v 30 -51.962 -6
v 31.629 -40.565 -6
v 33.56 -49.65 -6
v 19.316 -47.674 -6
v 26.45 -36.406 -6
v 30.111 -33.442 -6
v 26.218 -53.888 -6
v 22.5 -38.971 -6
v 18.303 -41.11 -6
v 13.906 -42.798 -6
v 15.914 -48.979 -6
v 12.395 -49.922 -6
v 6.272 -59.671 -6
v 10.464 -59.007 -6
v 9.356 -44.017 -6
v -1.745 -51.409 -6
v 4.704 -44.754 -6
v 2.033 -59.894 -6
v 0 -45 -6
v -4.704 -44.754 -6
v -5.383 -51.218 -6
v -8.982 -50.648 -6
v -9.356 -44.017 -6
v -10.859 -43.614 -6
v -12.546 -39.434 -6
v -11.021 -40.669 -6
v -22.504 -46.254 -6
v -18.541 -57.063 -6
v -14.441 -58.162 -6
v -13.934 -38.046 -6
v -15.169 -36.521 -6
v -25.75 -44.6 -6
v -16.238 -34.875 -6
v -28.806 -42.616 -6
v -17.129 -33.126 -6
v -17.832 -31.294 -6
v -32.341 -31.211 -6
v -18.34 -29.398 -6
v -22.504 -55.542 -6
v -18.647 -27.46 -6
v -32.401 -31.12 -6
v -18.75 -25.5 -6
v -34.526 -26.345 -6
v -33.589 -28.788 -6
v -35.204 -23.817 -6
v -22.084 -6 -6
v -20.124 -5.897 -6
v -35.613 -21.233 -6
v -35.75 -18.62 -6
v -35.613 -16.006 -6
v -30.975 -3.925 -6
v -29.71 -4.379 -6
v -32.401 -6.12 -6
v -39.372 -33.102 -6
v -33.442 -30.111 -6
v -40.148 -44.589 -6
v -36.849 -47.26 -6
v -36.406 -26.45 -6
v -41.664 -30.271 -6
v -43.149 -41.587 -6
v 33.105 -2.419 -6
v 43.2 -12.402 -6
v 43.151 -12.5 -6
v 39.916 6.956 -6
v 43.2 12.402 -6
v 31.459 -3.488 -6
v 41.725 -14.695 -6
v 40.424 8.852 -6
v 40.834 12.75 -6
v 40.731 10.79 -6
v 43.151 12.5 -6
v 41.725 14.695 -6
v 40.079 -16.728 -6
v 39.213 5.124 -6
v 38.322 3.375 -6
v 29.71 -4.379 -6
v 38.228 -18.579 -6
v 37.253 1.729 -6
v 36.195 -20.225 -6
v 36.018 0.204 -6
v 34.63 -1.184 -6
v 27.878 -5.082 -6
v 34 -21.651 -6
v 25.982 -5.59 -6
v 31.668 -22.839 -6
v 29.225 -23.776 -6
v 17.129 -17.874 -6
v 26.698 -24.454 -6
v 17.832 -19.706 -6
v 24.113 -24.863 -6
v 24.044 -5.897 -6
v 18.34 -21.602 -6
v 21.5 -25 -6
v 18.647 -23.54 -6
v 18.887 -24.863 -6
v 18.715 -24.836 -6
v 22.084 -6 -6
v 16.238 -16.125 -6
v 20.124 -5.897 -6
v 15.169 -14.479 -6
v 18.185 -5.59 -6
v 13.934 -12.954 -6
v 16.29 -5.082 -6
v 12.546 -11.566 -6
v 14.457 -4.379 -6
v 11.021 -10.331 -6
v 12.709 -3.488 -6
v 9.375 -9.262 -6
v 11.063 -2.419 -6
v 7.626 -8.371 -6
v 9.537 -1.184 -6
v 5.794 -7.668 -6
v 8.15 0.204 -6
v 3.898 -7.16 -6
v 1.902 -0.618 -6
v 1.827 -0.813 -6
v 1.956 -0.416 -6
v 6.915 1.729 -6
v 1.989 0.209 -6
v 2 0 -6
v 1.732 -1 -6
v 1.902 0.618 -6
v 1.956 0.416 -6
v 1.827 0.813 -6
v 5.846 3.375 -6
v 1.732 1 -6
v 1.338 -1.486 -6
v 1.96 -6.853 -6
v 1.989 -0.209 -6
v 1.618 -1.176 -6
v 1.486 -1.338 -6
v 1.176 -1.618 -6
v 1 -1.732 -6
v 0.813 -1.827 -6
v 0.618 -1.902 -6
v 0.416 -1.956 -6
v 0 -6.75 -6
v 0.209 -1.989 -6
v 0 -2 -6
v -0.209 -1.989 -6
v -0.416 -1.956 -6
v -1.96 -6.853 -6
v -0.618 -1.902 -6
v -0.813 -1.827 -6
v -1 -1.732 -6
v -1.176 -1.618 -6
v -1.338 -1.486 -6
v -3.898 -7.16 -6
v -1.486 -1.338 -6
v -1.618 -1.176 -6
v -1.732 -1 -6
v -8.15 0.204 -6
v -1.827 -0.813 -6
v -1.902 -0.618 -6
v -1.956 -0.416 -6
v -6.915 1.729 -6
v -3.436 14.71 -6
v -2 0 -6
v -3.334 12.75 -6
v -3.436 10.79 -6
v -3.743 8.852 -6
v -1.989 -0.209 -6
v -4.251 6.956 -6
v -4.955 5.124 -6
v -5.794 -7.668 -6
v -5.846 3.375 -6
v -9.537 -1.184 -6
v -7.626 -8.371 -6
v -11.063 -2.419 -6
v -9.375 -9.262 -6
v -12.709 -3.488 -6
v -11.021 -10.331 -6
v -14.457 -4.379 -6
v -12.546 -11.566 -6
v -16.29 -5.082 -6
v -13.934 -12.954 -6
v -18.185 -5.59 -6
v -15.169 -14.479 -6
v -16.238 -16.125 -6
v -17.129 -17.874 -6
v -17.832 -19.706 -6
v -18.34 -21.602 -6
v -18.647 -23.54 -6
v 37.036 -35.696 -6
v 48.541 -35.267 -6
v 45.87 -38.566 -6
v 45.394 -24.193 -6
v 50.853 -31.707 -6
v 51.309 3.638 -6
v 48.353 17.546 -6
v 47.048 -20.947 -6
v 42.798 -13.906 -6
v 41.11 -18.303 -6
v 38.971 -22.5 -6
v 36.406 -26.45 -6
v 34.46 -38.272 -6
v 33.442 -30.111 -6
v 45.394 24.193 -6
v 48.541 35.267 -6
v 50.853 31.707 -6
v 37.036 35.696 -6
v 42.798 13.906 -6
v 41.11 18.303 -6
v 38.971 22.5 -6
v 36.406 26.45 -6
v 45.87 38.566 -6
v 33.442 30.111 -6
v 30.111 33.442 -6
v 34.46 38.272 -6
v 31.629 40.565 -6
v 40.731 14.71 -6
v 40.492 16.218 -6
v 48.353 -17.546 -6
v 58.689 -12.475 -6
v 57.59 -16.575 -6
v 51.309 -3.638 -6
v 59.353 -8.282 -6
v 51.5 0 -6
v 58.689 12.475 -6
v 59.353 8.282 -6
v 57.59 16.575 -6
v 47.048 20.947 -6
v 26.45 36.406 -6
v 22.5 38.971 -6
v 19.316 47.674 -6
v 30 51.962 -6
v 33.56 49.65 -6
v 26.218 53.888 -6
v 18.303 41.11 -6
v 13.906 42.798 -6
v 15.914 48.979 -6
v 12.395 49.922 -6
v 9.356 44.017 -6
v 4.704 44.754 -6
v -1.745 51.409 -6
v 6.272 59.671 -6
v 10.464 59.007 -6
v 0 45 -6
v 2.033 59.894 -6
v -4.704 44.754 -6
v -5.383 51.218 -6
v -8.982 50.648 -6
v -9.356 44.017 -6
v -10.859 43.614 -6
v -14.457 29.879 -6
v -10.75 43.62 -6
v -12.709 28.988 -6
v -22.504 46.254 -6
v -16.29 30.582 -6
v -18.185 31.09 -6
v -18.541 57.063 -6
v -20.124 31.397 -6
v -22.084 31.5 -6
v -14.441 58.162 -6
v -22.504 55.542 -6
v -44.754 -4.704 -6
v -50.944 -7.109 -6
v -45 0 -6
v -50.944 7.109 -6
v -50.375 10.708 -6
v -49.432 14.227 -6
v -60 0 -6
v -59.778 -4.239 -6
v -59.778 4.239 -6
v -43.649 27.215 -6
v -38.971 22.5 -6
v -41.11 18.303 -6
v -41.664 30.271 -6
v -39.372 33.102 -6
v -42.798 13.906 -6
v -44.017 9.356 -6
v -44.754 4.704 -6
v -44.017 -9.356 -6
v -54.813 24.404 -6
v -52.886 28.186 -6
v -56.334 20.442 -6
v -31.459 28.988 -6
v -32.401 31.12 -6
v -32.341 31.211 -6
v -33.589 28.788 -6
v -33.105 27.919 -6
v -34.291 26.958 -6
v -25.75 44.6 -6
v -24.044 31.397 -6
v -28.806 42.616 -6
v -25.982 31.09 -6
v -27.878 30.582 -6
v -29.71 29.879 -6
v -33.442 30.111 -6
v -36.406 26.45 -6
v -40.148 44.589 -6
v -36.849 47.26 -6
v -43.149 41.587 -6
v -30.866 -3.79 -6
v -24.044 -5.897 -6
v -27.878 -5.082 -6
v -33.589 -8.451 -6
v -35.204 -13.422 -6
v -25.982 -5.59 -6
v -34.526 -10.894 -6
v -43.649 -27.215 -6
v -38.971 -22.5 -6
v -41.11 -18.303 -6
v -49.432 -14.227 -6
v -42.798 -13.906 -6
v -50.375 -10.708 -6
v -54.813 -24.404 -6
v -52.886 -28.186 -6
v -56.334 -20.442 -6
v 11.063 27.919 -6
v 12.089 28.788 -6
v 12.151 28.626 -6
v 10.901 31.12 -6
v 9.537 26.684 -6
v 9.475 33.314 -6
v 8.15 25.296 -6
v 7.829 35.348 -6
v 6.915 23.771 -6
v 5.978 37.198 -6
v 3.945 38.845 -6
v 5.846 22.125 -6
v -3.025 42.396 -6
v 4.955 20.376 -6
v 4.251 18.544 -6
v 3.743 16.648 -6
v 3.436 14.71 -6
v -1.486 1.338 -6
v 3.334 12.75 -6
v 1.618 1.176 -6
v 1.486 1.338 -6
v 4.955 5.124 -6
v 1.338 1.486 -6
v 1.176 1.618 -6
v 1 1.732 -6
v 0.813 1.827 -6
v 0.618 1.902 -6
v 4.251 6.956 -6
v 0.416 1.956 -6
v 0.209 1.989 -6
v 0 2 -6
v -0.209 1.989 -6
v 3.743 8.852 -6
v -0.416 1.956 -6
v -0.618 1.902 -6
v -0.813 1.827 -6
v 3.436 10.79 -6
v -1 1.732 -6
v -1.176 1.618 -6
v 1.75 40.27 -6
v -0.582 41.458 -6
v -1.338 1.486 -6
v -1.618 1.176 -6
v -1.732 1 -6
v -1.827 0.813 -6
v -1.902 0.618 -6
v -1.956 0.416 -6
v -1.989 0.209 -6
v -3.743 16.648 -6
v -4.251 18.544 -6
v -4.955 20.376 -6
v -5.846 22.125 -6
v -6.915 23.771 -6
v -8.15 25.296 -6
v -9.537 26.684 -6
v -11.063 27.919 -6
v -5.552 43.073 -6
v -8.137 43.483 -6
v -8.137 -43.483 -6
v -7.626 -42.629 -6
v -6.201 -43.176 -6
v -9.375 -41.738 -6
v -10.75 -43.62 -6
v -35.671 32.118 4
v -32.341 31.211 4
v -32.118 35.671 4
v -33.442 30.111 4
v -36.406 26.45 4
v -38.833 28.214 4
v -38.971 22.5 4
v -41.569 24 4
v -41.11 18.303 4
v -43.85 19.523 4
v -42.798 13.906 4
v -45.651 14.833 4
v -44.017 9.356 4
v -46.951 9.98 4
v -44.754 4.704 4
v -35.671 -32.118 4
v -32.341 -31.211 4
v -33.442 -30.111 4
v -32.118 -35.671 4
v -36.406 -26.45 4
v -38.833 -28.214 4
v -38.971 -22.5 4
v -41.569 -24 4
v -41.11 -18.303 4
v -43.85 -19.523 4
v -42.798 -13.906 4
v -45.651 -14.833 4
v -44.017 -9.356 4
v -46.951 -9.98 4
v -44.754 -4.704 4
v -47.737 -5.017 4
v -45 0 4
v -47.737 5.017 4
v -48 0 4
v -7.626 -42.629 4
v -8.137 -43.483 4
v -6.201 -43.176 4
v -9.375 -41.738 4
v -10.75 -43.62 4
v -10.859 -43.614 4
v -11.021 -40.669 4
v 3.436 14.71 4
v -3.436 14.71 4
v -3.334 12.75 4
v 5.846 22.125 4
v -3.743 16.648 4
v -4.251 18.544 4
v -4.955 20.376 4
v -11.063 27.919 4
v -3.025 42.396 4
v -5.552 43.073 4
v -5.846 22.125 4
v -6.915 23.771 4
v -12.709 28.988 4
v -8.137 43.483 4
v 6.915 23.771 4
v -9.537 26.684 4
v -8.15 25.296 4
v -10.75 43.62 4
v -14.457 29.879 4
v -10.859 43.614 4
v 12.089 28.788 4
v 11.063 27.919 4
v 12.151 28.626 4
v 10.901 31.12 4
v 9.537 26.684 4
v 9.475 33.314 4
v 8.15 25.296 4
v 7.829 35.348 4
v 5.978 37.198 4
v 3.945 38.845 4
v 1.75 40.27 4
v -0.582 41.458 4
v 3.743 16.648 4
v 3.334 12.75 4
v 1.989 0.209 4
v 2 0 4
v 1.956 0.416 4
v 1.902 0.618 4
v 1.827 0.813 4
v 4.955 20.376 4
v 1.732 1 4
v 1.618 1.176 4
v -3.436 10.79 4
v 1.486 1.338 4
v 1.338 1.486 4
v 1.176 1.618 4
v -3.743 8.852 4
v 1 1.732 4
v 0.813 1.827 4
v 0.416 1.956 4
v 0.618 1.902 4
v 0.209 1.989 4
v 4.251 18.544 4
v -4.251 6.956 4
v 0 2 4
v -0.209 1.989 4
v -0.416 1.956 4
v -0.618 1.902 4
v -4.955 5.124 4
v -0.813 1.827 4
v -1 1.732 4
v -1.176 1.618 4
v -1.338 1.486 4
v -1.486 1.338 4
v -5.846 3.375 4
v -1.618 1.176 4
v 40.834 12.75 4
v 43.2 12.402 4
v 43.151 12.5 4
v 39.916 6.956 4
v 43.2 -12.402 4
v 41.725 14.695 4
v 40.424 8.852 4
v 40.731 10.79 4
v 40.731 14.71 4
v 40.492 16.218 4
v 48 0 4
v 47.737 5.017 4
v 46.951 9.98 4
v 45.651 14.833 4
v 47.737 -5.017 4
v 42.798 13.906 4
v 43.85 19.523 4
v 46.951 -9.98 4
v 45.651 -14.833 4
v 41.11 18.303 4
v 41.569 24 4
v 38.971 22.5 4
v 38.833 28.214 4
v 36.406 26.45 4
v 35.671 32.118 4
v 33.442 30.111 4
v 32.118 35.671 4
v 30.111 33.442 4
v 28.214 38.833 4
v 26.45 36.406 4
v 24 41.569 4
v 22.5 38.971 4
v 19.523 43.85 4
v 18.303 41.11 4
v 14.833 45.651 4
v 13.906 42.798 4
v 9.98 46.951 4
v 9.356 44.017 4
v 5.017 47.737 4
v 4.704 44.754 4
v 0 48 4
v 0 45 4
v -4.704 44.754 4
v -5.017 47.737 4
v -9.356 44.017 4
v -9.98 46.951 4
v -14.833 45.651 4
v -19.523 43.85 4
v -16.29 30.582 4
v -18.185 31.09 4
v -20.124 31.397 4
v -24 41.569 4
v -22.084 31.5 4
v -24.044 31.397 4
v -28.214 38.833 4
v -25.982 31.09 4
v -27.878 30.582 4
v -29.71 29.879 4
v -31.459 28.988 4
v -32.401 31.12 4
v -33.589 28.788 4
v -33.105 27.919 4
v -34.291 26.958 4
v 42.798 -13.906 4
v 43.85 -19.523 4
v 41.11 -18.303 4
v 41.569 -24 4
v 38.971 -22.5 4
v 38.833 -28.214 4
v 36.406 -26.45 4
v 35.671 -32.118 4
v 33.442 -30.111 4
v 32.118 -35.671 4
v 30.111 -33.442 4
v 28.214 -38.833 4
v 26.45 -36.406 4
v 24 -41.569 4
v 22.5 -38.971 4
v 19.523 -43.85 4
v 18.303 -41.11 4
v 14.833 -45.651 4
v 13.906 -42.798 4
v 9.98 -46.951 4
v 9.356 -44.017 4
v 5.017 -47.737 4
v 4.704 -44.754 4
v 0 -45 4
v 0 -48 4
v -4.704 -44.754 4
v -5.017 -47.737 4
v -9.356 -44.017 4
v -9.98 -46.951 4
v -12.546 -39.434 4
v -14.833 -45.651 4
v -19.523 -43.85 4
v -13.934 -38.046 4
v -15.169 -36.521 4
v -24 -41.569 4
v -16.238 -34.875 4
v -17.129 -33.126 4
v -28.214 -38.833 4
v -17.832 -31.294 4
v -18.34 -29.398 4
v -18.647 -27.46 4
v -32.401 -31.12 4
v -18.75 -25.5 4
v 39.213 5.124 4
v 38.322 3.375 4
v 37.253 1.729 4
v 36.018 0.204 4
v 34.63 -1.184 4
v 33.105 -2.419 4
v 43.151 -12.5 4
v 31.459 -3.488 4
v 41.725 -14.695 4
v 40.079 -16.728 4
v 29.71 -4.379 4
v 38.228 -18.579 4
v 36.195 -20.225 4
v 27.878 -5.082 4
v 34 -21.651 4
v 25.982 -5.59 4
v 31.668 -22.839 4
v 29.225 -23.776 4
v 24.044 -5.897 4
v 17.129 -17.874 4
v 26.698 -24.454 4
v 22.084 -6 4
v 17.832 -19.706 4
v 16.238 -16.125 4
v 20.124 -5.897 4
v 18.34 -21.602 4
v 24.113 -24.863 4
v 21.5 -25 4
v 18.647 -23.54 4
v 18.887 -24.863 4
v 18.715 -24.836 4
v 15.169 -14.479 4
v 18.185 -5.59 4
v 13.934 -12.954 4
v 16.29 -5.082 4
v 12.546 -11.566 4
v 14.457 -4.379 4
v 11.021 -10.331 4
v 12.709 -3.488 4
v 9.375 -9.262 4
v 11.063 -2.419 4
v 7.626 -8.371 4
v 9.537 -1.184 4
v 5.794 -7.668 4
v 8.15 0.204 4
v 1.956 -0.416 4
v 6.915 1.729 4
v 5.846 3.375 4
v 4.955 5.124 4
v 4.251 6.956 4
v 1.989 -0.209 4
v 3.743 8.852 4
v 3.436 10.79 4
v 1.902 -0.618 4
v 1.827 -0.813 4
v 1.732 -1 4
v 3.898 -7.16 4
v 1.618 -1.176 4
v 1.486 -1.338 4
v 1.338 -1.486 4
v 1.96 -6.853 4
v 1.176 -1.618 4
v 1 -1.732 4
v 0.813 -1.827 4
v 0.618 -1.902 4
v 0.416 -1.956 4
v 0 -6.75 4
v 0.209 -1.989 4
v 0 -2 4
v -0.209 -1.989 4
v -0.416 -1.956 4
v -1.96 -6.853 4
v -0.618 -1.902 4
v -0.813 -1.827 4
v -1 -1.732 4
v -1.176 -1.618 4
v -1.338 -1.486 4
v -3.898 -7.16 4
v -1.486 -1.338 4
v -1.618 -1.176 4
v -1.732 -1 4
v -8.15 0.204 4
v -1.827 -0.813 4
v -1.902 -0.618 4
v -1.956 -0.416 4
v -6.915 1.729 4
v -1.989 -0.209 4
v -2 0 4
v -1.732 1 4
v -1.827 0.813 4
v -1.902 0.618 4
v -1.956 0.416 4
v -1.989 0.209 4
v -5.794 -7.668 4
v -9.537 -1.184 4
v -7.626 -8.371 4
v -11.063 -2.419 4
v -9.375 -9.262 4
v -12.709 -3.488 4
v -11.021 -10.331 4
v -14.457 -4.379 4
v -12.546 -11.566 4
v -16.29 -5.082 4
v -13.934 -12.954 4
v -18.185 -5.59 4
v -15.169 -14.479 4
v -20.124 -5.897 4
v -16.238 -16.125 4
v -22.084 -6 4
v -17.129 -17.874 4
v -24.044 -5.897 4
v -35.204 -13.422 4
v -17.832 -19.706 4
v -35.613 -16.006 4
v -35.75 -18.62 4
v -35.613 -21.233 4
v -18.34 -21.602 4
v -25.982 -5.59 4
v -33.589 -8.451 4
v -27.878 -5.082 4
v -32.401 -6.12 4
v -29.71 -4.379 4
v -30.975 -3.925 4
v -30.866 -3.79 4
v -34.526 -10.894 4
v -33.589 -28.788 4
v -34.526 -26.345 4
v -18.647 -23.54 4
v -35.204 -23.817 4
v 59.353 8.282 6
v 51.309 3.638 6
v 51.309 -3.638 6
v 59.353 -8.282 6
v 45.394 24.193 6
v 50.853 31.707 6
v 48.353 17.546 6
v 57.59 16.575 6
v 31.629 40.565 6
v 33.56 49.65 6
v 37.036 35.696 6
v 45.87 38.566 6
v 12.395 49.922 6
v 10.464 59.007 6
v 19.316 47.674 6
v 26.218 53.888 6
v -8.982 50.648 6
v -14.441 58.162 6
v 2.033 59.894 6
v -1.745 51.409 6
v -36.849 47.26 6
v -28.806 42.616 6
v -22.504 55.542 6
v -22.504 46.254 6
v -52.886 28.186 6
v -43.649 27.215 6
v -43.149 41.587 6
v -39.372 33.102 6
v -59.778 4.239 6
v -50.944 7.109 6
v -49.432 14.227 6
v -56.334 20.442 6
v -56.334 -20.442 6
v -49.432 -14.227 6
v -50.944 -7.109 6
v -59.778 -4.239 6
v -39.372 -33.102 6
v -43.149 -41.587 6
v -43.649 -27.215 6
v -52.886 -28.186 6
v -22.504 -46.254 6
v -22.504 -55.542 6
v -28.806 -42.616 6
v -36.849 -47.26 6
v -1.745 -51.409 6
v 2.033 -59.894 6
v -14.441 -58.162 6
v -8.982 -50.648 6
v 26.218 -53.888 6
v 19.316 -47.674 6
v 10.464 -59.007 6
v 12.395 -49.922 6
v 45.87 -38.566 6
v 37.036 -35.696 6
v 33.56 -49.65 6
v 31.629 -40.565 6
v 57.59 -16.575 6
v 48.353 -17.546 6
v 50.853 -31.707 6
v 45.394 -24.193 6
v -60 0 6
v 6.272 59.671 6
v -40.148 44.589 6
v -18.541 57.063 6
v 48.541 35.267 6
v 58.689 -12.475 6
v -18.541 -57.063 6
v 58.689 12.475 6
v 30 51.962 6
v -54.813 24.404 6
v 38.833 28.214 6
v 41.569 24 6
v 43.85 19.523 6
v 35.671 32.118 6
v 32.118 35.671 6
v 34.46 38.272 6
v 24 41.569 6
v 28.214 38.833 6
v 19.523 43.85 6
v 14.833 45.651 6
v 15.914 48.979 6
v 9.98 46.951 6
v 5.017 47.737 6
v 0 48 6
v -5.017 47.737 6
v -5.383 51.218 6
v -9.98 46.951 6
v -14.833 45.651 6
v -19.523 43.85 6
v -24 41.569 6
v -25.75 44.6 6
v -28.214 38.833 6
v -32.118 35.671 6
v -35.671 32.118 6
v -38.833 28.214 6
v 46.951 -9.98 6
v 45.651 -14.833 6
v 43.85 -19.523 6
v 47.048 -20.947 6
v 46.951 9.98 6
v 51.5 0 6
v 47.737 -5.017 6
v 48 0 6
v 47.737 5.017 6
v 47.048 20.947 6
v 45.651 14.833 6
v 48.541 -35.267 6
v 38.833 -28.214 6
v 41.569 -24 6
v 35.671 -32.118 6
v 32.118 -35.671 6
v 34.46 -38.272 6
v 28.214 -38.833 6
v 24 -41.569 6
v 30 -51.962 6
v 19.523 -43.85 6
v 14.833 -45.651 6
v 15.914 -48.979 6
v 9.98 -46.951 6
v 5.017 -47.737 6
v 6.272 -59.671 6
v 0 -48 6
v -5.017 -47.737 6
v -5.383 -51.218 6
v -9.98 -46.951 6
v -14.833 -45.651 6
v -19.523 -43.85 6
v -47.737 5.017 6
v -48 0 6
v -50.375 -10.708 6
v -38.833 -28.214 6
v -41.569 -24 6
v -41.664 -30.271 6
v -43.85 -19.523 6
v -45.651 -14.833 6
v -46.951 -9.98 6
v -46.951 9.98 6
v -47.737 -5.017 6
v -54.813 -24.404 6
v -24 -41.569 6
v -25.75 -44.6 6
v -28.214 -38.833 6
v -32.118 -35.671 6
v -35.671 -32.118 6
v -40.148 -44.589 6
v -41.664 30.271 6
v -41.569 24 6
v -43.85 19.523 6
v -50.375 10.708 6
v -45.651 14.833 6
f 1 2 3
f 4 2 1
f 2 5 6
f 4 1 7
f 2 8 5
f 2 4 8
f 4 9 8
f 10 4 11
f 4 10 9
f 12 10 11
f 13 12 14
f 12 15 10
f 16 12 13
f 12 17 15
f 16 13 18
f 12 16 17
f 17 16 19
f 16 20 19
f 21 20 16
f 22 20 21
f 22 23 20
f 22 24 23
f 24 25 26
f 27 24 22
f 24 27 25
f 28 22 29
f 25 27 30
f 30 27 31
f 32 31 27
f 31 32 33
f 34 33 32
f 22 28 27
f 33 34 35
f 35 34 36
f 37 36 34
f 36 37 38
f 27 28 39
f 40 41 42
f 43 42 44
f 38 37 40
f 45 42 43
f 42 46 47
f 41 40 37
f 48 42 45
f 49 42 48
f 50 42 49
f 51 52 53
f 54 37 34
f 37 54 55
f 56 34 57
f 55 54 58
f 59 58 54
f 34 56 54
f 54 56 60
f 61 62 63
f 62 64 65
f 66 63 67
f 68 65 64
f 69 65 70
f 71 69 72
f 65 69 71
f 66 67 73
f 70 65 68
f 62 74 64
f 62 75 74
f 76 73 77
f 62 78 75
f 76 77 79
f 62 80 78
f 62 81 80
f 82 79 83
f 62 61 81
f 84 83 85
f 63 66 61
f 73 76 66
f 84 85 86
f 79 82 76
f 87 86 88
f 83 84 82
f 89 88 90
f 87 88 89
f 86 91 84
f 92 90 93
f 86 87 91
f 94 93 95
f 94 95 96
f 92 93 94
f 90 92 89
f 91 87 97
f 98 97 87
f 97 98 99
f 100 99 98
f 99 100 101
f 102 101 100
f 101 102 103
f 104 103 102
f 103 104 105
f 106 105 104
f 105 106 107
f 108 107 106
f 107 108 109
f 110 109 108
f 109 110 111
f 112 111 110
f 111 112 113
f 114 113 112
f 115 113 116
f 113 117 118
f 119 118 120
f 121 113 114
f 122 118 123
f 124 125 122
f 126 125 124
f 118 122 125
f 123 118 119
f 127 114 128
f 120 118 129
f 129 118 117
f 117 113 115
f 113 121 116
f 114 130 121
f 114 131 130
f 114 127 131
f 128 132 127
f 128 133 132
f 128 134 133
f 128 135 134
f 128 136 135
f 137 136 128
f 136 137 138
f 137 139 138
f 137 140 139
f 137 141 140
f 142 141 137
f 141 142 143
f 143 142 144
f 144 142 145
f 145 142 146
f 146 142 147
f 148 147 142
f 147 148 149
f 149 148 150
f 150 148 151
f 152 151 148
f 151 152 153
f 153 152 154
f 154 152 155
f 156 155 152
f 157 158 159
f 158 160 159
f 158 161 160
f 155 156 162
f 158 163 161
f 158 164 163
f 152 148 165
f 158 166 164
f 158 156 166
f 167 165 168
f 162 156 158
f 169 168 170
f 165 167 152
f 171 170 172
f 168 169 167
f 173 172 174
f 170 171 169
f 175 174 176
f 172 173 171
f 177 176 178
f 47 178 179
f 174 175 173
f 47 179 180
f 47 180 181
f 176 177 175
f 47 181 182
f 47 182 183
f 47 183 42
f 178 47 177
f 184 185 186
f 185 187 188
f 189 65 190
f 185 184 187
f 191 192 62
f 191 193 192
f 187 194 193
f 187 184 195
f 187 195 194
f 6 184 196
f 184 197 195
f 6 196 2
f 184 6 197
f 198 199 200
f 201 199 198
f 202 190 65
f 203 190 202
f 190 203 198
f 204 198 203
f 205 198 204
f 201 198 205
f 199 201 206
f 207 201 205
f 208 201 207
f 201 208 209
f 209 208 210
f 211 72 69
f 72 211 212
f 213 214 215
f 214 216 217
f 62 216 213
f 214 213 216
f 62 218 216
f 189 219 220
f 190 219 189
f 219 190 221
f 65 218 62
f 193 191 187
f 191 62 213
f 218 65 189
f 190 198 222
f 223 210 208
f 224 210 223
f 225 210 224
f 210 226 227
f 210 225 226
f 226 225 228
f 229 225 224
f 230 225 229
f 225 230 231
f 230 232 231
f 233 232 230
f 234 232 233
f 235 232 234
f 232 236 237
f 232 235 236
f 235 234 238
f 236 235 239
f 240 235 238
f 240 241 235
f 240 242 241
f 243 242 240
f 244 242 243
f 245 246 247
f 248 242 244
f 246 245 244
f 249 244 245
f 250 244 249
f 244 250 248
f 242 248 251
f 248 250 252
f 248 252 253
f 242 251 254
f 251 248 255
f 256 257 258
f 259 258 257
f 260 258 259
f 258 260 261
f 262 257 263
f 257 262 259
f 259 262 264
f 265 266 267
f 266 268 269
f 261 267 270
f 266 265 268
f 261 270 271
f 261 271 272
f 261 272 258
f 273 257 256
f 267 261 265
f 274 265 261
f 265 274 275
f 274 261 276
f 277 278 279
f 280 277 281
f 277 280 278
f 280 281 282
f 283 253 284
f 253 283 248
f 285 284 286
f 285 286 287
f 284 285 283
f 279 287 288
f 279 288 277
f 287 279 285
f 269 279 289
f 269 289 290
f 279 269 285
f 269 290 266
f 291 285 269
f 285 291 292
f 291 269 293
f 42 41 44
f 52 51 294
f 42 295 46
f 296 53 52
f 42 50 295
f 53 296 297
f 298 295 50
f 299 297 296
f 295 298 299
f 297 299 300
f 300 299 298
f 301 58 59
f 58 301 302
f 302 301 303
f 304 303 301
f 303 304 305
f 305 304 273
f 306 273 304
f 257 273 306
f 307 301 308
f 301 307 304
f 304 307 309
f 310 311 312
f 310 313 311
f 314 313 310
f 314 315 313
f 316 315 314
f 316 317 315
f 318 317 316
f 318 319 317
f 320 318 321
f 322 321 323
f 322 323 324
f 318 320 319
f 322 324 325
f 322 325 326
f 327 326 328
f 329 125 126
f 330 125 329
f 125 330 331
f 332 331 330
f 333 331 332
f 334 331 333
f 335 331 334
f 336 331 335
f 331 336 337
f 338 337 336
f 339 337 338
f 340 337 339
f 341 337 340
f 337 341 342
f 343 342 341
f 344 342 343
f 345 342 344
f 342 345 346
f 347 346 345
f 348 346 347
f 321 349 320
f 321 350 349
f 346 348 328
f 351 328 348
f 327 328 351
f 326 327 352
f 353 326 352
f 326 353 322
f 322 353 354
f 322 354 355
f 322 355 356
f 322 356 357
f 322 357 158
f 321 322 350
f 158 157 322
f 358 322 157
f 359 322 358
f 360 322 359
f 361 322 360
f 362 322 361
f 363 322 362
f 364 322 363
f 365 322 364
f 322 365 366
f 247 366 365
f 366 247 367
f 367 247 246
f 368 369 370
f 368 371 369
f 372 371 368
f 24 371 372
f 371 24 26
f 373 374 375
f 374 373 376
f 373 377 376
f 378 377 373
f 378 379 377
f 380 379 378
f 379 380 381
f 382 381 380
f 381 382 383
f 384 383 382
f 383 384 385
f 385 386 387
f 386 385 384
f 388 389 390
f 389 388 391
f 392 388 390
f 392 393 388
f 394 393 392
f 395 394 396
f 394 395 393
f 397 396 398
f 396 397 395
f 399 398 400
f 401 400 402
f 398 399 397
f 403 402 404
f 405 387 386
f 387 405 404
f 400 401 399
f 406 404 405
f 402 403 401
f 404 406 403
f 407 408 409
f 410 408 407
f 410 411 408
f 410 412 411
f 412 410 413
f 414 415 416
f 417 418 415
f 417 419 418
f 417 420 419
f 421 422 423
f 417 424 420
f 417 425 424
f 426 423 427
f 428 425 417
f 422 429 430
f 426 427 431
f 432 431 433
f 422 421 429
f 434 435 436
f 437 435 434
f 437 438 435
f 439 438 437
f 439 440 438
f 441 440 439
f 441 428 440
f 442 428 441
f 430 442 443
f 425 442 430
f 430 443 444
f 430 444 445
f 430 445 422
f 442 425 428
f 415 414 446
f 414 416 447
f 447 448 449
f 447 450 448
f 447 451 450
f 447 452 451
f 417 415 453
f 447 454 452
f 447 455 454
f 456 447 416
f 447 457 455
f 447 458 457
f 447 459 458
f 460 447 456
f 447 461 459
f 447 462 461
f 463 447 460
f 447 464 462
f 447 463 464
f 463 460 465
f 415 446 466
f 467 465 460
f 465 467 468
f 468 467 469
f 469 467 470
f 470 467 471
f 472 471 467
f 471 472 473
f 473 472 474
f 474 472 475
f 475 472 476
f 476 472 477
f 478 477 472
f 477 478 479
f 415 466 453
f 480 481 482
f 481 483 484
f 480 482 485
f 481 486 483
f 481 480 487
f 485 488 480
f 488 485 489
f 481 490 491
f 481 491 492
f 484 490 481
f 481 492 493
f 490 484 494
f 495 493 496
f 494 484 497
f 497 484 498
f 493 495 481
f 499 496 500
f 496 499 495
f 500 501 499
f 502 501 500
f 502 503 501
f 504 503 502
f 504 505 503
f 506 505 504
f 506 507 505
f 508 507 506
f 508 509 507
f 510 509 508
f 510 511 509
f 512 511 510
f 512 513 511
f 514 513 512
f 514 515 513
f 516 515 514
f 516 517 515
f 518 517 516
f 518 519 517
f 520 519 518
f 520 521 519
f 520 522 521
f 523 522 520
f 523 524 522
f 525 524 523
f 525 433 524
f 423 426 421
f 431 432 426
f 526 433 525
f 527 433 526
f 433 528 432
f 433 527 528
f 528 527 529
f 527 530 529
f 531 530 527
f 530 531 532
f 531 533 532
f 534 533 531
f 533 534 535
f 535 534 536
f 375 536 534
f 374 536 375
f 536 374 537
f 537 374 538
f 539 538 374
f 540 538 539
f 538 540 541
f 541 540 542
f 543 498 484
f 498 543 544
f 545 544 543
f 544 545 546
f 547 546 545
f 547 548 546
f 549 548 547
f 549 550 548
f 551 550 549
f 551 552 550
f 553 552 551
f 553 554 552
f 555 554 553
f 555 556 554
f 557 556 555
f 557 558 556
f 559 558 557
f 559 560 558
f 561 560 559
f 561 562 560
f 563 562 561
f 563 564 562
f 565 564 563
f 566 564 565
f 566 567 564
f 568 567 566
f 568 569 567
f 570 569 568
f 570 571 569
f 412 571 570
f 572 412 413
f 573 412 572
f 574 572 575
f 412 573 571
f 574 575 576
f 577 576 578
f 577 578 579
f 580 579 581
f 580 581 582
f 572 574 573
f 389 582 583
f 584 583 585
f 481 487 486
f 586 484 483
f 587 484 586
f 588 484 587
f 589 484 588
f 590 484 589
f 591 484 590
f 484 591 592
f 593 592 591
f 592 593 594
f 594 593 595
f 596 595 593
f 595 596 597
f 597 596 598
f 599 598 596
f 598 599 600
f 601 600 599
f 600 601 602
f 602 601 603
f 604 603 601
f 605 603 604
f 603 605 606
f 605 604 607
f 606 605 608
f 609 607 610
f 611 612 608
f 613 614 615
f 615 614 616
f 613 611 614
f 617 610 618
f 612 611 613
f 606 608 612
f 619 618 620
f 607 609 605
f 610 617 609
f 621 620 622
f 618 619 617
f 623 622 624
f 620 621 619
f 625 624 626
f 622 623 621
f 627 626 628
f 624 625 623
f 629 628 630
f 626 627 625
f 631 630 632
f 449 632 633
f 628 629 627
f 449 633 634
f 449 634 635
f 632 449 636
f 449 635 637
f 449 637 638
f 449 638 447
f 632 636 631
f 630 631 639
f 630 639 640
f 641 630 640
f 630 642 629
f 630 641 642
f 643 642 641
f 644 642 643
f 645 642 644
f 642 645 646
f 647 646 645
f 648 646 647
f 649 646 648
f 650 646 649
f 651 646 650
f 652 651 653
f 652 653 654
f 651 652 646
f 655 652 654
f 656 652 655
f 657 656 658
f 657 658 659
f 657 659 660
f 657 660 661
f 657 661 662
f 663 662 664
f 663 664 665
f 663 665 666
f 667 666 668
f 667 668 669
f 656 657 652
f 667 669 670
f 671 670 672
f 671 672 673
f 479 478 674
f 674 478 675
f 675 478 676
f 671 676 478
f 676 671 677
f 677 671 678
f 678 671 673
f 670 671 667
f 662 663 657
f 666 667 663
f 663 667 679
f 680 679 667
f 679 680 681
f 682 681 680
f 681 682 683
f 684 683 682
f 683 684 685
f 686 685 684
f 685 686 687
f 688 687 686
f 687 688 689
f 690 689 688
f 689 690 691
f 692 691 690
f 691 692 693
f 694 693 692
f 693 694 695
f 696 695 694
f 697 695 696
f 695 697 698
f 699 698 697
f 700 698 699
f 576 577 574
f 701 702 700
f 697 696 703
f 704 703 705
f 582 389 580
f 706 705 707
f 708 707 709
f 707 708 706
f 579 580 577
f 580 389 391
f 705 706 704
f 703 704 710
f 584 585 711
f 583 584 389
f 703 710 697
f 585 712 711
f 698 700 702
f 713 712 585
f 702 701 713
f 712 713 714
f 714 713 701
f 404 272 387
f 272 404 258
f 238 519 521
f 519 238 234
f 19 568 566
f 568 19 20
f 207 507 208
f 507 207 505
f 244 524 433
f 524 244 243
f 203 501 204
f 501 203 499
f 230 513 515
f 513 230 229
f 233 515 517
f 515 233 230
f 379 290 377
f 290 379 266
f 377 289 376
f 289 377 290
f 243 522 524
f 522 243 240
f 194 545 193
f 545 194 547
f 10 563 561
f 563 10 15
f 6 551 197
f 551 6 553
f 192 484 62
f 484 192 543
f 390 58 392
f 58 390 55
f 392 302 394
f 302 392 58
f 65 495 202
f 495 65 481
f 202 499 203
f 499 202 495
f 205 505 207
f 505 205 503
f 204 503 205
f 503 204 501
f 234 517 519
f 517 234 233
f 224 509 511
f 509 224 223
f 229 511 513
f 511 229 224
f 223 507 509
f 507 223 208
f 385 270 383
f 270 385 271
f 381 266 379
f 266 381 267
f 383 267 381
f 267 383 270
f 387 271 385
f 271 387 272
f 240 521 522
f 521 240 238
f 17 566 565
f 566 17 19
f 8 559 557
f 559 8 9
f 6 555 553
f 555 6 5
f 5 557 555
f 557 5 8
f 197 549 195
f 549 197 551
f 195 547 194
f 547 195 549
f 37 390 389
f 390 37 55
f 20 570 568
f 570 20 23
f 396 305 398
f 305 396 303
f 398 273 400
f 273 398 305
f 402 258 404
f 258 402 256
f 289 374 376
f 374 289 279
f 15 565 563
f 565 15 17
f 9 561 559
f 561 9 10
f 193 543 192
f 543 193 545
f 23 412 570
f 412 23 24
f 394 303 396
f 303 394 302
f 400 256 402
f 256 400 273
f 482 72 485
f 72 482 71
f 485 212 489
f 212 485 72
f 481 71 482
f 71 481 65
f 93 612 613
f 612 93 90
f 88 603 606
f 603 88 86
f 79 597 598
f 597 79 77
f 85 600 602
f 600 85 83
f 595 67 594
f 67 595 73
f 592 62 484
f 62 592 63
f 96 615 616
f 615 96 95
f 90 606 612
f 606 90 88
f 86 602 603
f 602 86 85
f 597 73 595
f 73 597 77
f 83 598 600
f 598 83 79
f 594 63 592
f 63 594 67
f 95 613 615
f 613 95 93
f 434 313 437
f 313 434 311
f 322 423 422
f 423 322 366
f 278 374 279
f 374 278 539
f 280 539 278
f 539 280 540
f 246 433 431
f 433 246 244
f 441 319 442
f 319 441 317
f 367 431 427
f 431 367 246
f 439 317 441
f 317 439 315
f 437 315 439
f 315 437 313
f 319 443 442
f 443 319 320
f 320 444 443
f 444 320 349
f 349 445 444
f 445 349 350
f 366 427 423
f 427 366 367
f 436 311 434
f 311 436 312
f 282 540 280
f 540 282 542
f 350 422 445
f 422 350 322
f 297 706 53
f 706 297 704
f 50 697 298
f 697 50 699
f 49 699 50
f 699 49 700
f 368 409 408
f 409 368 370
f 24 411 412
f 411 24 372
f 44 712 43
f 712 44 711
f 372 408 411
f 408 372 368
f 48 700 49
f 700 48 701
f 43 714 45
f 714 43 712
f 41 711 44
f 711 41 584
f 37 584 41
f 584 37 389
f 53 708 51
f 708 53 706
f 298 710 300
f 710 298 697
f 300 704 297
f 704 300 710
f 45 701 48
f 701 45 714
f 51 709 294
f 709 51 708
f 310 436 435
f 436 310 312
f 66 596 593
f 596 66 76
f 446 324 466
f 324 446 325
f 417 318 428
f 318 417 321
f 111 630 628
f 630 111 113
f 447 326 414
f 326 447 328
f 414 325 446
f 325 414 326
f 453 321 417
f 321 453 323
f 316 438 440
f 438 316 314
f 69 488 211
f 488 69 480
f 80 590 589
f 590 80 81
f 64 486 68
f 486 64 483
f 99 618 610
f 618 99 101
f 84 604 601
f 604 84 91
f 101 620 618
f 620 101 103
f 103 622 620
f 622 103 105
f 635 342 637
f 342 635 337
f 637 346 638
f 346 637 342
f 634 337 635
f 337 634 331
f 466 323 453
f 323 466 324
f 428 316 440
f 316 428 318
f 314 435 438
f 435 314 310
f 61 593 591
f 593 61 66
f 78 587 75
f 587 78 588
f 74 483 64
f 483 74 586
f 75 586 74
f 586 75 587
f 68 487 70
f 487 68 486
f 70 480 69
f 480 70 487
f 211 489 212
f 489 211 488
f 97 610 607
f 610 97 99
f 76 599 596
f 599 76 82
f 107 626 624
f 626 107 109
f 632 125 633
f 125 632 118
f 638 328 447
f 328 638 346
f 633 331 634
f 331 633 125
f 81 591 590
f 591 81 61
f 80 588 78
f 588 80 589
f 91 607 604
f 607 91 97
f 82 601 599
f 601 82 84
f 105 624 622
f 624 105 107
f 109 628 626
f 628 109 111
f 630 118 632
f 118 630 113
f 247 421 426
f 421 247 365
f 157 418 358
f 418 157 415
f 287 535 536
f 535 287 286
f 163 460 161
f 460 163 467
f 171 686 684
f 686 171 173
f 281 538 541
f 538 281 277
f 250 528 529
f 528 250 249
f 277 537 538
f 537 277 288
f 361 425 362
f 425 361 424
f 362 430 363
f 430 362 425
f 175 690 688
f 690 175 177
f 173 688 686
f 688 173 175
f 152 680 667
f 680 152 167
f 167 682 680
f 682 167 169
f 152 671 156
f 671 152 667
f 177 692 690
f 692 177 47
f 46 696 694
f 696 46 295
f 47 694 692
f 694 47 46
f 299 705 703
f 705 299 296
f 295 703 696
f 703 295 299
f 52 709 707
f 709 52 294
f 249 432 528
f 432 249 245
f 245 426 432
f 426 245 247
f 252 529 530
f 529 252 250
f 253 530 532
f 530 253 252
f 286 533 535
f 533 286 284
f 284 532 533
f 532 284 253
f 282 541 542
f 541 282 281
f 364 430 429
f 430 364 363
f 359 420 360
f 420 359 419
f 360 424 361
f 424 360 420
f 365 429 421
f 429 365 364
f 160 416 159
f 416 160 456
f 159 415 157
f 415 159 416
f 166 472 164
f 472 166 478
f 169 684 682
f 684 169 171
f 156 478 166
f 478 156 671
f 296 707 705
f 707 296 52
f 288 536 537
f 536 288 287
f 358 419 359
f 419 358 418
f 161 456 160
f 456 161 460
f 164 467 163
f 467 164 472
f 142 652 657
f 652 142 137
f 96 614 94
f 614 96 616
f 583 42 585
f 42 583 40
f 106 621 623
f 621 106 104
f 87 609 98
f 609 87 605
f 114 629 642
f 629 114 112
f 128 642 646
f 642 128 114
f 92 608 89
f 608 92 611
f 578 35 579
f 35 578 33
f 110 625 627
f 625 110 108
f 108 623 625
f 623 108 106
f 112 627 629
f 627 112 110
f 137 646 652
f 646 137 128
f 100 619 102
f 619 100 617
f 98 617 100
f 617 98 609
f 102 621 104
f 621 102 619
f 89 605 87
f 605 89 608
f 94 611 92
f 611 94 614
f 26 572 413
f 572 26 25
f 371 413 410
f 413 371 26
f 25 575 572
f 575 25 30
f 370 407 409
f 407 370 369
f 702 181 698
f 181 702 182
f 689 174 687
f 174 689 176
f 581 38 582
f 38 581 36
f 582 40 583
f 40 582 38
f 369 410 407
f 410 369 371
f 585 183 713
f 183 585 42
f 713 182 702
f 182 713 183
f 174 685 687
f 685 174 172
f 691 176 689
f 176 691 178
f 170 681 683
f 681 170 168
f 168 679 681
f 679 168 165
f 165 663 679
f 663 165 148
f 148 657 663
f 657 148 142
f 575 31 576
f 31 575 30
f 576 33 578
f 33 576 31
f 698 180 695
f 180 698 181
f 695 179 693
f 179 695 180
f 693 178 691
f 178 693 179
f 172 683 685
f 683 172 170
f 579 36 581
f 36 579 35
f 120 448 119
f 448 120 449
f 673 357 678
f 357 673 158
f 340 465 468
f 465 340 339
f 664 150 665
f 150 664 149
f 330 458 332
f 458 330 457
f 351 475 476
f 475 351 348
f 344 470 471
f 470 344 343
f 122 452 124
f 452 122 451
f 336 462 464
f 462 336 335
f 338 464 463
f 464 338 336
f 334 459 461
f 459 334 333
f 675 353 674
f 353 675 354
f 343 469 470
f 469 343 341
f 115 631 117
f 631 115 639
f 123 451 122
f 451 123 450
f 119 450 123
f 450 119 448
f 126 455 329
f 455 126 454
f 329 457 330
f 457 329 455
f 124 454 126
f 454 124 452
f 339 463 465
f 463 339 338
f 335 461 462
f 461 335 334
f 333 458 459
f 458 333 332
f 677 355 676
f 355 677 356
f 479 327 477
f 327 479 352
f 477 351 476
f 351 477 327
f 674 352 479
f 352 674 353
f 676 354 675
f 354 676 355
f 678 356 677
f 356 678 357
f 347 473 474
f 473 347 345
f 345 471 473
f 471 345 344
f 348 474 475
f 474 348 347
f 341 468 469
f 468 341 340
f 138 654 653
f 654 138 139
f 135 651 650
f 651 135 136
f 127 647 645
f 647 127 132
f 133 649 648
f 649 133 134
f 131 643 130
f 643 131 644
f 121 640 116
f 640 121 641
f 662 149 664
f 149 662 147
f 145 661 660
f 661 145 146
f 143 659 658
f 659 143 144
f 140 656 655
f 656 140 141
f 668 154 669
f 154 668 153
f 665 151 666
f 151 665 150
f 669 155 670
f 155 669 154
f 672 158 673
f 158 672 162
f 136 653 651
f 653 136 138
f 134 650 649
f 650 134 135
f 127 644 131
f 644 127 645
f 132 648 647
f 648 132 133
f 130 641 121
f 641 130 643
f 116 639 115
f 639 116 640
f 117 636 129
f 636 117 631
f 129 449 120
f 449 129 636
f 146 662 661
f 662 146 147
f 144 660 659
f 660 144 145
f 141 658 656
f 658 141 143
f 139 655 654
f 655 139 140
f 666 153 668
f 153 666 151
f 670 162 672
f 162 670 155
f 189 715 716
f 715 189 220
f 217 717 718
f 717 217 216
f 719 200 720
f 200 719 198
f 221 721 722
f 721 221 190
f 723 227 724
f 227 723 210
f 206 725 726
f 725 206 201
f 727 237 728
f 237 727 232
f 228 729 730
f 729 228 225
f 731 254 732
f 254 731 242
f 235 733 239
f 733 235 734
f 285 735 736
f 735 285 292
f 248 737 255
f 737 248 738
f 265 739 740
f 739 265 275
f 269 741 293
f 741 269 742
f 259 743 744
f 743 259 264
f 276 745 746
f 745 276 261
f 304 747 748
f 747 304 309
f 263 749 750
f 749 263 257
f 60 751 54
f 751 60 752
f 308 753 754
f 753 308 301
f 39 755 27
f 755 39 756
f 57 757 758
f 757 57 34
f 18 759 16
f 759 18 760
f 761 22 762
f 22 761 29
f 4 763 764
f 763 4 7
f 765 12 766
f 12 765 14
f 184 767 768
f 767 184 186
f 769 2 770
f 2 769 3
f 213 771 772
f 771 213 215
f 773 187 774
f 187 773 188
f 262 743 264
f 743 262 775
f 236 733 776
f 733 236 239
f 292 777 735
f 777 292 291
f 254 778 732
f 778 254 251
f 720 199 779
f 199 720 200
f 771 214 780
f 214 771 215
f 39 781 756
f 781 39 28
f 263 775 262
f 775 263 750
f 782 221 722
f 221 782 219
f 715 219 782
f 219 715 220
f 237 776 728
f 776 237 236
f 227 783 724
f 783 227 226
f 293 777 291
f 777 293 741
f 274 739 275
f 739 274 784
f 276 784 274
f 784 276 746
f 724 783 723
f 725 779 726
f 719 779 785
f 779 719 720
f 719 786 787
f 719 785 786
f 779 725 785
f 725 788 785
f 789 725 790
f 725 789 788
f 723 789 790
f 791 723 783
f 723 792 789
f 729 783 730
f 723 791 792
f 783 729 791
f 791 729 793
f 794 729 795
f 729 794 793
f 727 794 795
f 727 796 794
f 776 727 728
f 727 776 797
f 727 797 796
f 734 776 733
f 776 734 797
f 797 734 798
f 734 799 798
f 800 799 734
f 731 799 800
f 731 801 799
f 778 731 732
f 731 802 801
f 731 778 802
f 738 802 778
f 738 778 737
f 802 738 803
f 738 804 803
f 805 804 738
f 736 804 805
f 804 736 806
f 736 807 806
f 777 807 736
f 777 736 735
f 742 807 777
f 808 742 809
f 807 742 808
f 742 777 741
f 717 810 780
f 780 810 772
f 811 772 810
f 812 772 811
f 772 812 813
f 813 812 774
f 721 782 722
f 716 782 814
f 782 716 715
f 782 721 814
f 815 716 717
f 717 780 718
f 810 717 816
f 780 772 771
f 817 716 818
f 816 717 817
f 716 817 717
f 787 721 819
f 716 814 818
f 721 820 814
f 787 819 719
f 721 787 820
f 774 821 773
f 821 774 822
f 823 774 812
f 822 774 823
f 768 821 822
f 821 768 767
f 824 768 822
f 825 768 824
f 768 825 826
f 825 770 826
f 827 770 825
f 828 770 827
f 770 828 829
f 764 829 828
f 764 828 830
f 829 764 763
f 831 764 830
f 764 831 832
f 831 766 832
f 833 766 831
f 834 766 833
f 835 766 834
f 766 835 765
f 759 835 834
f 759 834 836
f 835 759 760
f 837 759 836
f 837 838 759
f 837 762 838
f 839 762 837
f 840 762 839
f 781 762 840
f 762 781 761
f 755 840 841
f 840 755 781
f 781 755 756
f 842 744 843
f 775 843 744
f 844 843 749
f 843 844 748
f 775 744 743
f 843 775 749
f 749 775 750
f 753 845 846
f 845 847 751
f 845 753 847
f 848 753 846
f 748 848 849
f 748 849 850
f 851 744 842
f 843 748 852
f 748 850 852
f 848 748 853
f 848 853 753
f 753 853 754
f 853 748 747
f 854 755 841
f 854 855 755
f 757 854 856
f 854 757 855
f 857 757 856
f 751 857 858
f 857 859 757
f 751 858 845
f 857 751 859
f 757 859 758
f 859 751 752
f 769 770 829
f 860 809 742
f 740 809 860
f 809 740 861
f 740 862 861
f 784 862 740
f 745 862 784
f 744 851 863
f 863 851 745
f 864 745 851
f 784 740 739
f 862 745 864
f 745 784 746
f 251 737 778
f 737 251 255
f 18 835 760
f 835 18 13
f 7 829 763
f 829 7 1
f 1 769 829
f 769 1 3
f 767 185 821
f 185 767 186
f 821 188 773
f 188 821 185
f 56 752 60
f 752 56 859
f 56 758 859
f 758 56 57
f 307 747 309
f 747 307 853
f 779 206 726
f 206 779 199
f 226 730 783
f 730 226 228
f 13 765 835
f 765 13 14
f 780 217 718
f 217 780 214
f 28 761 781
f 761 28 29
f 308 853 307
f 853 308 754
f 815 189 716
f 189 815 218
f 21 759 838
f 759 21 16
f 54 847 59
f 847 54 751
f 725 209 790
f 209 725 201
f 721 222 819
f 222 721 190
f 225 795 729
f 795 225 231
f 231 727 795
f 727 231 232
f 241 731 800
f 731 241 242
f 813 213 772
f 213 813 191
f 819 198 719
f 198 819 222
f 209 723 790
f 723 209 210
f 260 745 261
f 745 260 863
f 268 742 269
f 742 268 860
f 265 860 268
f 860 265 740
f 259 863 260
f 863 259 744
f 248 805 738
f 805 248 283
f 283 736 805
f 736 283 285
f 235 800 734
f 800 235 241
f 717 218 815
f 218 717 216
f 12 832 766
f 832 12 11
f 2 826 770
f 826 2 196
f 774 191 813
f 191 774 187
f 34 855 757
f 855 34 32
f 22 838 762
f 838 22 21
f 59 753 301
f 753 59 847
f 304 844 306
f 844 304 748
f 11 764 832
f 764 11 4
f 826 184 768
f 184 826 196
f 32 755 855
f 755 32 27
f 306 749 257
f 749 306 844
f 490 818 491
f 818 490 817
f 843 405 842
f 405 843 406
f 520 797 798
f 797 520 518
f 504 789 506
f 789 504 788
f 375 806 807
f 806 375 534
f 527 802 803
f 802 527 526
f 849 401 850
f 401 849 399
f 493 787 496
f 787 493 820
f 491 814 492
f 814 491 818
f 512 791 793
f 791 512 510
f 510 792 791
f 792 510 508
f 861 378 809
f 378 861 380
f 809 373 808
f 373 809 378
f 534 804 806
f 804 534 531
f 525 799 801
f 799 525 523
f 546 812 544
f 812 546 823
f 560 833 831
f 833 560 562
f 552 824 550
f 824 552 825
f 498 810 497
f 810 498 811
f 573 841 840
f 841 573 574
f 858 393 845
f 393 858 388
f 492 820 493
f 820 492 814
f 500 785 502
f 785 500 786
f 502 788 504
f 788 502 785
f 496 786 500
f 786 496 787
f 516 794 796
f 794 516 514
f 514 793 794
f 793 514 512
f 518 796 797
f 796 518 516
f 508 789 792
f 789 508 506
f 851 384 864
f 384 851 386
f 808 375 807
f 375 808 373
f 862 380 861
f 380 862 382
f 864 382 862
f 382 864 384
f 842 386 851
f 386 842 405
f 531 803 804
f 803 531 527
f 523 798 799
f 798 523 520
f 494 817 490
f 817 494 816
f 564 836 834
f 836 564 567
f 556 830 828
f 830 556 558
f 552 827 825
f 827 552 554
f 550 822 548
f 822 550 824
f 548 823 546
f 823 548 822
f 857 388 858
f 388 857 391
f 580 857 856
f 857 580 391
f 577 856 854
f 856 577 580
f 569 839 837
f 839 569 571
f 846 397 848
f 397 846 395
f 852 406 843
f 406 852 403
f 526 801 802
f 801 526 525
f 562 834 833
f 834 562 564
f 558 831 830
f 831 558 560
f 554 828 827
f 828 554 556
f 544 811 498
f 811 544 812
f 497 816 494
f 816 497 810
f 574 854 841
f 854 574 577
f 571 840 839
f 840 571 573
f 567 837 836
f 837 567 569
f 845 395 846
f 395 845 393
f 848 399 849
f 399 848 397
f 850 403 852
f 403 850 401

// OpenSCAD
// file: Gear_External.scad
/*---------------------------------------------------------\
|     From: Ekobots Innovation Ltda - www.ekobots.com      |
|       by: Juan Sirgado y Antico - www.jsya.com.br        |
|----------------------------------------------------------|
|          Program Gear External - 2019/05/08              |
|               All rights reserved 2019                   |
|---------------------------------------------------------*/
ac=0.2;
//---------------------------------------------------------|
module gear_external
(
  // gear parameters
  num_teeth=30,      // number of teeth
  tooth_diameter=8,  //tooth diameter
  tooth_clear=0.15,  // tooth clear
  tooth_deep=0.15,   // tooth deep
  gear_height=12,     // gear height
  // central hole parameters
  hole_diameter=95    // diameter of central hole
)
{
   // gear values
   tooth_radius = tooth_diameter/2;                 // tooth radius
   hole_radius = hole_diameter/2;                   // hole radius
   tooth_distance = tooth_diameter+tooth_clear;     // tooth distance
   gear_radius=(tooth_distance*num_teeth)/3.141592; // gear ray
   tooth_angle=360/num_teeth;                       // tooth rotation
   tooth_end=360-tooth_angle+0.1; // (round error)  // tooth end
   cylinder_faces=36;                               // cylinder faces
   // gear rendering
   difference()
   {
      union()
      {
         cylinder(gear_height,
                  gear_radius,
                  gear_radius,center=true,$fn=cylinder_faces);
         for(gear_angle=[0:tooth_angle:tooth_end])
         {
            rotate([0,0,gear_angle]) translate([gear_radius,0,0])
            {
               cylinder(gear_height,
                        tooth_radius,
                        tooth_radius,center=true,$fn=cylinder_faces);
            }
         }
      }
      for(gear_angle=[0:tooth_angle:tooth_end])
      {
         rotate([0,0,gear_angle+(tooth_angle/2)]) 
            {
            translate([gear_radius-tooth_deep,0,0])
               cylinder(gear_height+0.2,
                        tooth_radius+tooth_clear,
                        tooth_radius+tooth_clear,center=true,$fn=cylinder_faces);
            translate([gear_radius,0,0])
               cube([tooth_deep*2,
                     (tooth_radius+tooth_clear)*2,
                     gear_height+0.2],center=true);
            }
      }
      // central hole 
      cylinder(gear_height+0.2,
               hole_radius, 
               hole_radius,center=true,$fn=cylinder_faces);
   }
}
//---------------------------------------------------------|
// file: Gear_Trapezoidal_Tooth.scad
/*---------------------------------------------------------\
|     From: Ekobots Innovation Ltda - www.ekobots.com      |
|       by: Juan Sirgado y Antico - www.jsya.com.br        |
|----------------------------------------------------------|
|       Program Gear Trapezoidal Tooth - 2019/05/08        |
|               All rights reserved 2019                   |
|---------------------------------------------------------*/
ac=0.2;
fn=60;
pi=3.141592;
rt=-($t*360);
// gear();
// rotate_gear(); // Animate Parametes are (FPS: 60 Steps: 300)
//---------------------------------------------------------|
module rotate_gear()
{
   translate([56.5,0,0])
      rotate([0,0,-rt])
         gear();
   translate([-56.5,0,0])
      rotate([0,0,rt])
         gear();
}
//Gear Parameters
//---------------------------------------------------------|
module gear(
//Gear Parameters
n_teeth=15, // n_teeth -> number of teeth
h_teeth=10,  // h_teeth -> height of teeth
a_teeth=30, // a_teeth -> angle of teeth 
d_gear=120, // d_gear  -> diameter of gear (external)
h_gear=12,  // h_gear  -> gear height
c_hole=4)   // d_hole  -> diamenter of the center hole(0=none)
{
   difference()
   {
      translate([0,0,0])
         cylinder(h=h_gear,d=d_gear,center=true,$fn=60);
      translate([0,0,0])
         cylinder(h=h_gear+ac,d=d_gear-(h_teeth*2),center=true,$fn=60);
      dr=360/n_teeth;
      ss=d_gear*pi/(n_teeth*2);
      for(r=[0:dr:360-dr])
         rotate([0,0,r])
            translate([(d_gear/2)-h_teeth/2,0,0])
            {
               translate([0,0,0])
                  cube([h_teeth*2,ss/2,h_gear+ac],center=true);
               translate([0,(ss/4)-1,0])
                  rotate([0,0,a_teeth])
                     cube([h_teeth*4,ss/2,h_gear+ac],center=true);
               translate([0,-(ss/4)+1,0])
                  rotate([0,0,-a_teeth])
                     cube([h_teeth*4,ss/2,h_gear+ac],center=true);
            }      
   }
   difference()
   {
      translate([0,0,0])
         cylinder(h=12,d=103,center=true,$fn=60);
      translate([0,0,0])
         cylinder(h=12+ac,d=96,center=true,$fn=60);
   }
}
//---------------------------------------------------------|
// main file
/*---------------------------------------------------------\
|     From: Ekobots Innovation Ltda - www.ekobots.com      |
|       by: Juan Sirgado y Antico - www.jsya.com.br        |
|----------------------------------------------------------|
|          Program Gear External - 2019/05/08              |
|               All rights reserved 2019                   |
|---------------------------------------------------------*/
include <Gear_Trapezoidal_Tooth.scad>
include <Gear_External.scad>
ac=0.2;
fn=60;
pi=3.141592;
rt=-($t*360);
gear_full();
//gear_rotate();
//---------------------------------------------------------|
module gear_full()
{
   union()
   {
   //    translate([0,0,-1])
   //       gear_02();
   //    translate([0,0,0])
   //       gear_external(num_teeth=21);
       translate([0,0,-1])
          gear_02();
       translate([0,0,0])
          gear();
   }
}
//---------------------------------------------------------|
module gear_rotate()
{
   translate([56.5,0,0])
      rotate([0,0,-rt])
         gear_full();
   translate([-56.5,0,0])
      rotate([0,0,rt])
         gear_full();
}
//---------------------------------------------------------|
module gear_02()
{
   difference()
   {
      translate([0,0,0])
         cylinder(h=10,d=100,center=true,$fn=60);
      translate([0,0,0])
         cylinder(h=10+ac,d=90,center=true,$fn=60);
   }
   difference()
   {
      for(r=[0:120:240])
         rotate([0,0,r]) 
            translate([21.5,0,0])
               cylinder(h=10,d=50,center=true,$fn=60);
      for(r=[0:120:240])
         rotate([0,0,r+30]) 
            translate([25.5,0,0])
               cylinder(h=10+ac,d=37.5,center=true,$fn=60);
      translate([0,0,0])
         cylinder(h=10+ac,d=4,center=true,$fn=60);
   }
}
//---------------------------------------------------------|
